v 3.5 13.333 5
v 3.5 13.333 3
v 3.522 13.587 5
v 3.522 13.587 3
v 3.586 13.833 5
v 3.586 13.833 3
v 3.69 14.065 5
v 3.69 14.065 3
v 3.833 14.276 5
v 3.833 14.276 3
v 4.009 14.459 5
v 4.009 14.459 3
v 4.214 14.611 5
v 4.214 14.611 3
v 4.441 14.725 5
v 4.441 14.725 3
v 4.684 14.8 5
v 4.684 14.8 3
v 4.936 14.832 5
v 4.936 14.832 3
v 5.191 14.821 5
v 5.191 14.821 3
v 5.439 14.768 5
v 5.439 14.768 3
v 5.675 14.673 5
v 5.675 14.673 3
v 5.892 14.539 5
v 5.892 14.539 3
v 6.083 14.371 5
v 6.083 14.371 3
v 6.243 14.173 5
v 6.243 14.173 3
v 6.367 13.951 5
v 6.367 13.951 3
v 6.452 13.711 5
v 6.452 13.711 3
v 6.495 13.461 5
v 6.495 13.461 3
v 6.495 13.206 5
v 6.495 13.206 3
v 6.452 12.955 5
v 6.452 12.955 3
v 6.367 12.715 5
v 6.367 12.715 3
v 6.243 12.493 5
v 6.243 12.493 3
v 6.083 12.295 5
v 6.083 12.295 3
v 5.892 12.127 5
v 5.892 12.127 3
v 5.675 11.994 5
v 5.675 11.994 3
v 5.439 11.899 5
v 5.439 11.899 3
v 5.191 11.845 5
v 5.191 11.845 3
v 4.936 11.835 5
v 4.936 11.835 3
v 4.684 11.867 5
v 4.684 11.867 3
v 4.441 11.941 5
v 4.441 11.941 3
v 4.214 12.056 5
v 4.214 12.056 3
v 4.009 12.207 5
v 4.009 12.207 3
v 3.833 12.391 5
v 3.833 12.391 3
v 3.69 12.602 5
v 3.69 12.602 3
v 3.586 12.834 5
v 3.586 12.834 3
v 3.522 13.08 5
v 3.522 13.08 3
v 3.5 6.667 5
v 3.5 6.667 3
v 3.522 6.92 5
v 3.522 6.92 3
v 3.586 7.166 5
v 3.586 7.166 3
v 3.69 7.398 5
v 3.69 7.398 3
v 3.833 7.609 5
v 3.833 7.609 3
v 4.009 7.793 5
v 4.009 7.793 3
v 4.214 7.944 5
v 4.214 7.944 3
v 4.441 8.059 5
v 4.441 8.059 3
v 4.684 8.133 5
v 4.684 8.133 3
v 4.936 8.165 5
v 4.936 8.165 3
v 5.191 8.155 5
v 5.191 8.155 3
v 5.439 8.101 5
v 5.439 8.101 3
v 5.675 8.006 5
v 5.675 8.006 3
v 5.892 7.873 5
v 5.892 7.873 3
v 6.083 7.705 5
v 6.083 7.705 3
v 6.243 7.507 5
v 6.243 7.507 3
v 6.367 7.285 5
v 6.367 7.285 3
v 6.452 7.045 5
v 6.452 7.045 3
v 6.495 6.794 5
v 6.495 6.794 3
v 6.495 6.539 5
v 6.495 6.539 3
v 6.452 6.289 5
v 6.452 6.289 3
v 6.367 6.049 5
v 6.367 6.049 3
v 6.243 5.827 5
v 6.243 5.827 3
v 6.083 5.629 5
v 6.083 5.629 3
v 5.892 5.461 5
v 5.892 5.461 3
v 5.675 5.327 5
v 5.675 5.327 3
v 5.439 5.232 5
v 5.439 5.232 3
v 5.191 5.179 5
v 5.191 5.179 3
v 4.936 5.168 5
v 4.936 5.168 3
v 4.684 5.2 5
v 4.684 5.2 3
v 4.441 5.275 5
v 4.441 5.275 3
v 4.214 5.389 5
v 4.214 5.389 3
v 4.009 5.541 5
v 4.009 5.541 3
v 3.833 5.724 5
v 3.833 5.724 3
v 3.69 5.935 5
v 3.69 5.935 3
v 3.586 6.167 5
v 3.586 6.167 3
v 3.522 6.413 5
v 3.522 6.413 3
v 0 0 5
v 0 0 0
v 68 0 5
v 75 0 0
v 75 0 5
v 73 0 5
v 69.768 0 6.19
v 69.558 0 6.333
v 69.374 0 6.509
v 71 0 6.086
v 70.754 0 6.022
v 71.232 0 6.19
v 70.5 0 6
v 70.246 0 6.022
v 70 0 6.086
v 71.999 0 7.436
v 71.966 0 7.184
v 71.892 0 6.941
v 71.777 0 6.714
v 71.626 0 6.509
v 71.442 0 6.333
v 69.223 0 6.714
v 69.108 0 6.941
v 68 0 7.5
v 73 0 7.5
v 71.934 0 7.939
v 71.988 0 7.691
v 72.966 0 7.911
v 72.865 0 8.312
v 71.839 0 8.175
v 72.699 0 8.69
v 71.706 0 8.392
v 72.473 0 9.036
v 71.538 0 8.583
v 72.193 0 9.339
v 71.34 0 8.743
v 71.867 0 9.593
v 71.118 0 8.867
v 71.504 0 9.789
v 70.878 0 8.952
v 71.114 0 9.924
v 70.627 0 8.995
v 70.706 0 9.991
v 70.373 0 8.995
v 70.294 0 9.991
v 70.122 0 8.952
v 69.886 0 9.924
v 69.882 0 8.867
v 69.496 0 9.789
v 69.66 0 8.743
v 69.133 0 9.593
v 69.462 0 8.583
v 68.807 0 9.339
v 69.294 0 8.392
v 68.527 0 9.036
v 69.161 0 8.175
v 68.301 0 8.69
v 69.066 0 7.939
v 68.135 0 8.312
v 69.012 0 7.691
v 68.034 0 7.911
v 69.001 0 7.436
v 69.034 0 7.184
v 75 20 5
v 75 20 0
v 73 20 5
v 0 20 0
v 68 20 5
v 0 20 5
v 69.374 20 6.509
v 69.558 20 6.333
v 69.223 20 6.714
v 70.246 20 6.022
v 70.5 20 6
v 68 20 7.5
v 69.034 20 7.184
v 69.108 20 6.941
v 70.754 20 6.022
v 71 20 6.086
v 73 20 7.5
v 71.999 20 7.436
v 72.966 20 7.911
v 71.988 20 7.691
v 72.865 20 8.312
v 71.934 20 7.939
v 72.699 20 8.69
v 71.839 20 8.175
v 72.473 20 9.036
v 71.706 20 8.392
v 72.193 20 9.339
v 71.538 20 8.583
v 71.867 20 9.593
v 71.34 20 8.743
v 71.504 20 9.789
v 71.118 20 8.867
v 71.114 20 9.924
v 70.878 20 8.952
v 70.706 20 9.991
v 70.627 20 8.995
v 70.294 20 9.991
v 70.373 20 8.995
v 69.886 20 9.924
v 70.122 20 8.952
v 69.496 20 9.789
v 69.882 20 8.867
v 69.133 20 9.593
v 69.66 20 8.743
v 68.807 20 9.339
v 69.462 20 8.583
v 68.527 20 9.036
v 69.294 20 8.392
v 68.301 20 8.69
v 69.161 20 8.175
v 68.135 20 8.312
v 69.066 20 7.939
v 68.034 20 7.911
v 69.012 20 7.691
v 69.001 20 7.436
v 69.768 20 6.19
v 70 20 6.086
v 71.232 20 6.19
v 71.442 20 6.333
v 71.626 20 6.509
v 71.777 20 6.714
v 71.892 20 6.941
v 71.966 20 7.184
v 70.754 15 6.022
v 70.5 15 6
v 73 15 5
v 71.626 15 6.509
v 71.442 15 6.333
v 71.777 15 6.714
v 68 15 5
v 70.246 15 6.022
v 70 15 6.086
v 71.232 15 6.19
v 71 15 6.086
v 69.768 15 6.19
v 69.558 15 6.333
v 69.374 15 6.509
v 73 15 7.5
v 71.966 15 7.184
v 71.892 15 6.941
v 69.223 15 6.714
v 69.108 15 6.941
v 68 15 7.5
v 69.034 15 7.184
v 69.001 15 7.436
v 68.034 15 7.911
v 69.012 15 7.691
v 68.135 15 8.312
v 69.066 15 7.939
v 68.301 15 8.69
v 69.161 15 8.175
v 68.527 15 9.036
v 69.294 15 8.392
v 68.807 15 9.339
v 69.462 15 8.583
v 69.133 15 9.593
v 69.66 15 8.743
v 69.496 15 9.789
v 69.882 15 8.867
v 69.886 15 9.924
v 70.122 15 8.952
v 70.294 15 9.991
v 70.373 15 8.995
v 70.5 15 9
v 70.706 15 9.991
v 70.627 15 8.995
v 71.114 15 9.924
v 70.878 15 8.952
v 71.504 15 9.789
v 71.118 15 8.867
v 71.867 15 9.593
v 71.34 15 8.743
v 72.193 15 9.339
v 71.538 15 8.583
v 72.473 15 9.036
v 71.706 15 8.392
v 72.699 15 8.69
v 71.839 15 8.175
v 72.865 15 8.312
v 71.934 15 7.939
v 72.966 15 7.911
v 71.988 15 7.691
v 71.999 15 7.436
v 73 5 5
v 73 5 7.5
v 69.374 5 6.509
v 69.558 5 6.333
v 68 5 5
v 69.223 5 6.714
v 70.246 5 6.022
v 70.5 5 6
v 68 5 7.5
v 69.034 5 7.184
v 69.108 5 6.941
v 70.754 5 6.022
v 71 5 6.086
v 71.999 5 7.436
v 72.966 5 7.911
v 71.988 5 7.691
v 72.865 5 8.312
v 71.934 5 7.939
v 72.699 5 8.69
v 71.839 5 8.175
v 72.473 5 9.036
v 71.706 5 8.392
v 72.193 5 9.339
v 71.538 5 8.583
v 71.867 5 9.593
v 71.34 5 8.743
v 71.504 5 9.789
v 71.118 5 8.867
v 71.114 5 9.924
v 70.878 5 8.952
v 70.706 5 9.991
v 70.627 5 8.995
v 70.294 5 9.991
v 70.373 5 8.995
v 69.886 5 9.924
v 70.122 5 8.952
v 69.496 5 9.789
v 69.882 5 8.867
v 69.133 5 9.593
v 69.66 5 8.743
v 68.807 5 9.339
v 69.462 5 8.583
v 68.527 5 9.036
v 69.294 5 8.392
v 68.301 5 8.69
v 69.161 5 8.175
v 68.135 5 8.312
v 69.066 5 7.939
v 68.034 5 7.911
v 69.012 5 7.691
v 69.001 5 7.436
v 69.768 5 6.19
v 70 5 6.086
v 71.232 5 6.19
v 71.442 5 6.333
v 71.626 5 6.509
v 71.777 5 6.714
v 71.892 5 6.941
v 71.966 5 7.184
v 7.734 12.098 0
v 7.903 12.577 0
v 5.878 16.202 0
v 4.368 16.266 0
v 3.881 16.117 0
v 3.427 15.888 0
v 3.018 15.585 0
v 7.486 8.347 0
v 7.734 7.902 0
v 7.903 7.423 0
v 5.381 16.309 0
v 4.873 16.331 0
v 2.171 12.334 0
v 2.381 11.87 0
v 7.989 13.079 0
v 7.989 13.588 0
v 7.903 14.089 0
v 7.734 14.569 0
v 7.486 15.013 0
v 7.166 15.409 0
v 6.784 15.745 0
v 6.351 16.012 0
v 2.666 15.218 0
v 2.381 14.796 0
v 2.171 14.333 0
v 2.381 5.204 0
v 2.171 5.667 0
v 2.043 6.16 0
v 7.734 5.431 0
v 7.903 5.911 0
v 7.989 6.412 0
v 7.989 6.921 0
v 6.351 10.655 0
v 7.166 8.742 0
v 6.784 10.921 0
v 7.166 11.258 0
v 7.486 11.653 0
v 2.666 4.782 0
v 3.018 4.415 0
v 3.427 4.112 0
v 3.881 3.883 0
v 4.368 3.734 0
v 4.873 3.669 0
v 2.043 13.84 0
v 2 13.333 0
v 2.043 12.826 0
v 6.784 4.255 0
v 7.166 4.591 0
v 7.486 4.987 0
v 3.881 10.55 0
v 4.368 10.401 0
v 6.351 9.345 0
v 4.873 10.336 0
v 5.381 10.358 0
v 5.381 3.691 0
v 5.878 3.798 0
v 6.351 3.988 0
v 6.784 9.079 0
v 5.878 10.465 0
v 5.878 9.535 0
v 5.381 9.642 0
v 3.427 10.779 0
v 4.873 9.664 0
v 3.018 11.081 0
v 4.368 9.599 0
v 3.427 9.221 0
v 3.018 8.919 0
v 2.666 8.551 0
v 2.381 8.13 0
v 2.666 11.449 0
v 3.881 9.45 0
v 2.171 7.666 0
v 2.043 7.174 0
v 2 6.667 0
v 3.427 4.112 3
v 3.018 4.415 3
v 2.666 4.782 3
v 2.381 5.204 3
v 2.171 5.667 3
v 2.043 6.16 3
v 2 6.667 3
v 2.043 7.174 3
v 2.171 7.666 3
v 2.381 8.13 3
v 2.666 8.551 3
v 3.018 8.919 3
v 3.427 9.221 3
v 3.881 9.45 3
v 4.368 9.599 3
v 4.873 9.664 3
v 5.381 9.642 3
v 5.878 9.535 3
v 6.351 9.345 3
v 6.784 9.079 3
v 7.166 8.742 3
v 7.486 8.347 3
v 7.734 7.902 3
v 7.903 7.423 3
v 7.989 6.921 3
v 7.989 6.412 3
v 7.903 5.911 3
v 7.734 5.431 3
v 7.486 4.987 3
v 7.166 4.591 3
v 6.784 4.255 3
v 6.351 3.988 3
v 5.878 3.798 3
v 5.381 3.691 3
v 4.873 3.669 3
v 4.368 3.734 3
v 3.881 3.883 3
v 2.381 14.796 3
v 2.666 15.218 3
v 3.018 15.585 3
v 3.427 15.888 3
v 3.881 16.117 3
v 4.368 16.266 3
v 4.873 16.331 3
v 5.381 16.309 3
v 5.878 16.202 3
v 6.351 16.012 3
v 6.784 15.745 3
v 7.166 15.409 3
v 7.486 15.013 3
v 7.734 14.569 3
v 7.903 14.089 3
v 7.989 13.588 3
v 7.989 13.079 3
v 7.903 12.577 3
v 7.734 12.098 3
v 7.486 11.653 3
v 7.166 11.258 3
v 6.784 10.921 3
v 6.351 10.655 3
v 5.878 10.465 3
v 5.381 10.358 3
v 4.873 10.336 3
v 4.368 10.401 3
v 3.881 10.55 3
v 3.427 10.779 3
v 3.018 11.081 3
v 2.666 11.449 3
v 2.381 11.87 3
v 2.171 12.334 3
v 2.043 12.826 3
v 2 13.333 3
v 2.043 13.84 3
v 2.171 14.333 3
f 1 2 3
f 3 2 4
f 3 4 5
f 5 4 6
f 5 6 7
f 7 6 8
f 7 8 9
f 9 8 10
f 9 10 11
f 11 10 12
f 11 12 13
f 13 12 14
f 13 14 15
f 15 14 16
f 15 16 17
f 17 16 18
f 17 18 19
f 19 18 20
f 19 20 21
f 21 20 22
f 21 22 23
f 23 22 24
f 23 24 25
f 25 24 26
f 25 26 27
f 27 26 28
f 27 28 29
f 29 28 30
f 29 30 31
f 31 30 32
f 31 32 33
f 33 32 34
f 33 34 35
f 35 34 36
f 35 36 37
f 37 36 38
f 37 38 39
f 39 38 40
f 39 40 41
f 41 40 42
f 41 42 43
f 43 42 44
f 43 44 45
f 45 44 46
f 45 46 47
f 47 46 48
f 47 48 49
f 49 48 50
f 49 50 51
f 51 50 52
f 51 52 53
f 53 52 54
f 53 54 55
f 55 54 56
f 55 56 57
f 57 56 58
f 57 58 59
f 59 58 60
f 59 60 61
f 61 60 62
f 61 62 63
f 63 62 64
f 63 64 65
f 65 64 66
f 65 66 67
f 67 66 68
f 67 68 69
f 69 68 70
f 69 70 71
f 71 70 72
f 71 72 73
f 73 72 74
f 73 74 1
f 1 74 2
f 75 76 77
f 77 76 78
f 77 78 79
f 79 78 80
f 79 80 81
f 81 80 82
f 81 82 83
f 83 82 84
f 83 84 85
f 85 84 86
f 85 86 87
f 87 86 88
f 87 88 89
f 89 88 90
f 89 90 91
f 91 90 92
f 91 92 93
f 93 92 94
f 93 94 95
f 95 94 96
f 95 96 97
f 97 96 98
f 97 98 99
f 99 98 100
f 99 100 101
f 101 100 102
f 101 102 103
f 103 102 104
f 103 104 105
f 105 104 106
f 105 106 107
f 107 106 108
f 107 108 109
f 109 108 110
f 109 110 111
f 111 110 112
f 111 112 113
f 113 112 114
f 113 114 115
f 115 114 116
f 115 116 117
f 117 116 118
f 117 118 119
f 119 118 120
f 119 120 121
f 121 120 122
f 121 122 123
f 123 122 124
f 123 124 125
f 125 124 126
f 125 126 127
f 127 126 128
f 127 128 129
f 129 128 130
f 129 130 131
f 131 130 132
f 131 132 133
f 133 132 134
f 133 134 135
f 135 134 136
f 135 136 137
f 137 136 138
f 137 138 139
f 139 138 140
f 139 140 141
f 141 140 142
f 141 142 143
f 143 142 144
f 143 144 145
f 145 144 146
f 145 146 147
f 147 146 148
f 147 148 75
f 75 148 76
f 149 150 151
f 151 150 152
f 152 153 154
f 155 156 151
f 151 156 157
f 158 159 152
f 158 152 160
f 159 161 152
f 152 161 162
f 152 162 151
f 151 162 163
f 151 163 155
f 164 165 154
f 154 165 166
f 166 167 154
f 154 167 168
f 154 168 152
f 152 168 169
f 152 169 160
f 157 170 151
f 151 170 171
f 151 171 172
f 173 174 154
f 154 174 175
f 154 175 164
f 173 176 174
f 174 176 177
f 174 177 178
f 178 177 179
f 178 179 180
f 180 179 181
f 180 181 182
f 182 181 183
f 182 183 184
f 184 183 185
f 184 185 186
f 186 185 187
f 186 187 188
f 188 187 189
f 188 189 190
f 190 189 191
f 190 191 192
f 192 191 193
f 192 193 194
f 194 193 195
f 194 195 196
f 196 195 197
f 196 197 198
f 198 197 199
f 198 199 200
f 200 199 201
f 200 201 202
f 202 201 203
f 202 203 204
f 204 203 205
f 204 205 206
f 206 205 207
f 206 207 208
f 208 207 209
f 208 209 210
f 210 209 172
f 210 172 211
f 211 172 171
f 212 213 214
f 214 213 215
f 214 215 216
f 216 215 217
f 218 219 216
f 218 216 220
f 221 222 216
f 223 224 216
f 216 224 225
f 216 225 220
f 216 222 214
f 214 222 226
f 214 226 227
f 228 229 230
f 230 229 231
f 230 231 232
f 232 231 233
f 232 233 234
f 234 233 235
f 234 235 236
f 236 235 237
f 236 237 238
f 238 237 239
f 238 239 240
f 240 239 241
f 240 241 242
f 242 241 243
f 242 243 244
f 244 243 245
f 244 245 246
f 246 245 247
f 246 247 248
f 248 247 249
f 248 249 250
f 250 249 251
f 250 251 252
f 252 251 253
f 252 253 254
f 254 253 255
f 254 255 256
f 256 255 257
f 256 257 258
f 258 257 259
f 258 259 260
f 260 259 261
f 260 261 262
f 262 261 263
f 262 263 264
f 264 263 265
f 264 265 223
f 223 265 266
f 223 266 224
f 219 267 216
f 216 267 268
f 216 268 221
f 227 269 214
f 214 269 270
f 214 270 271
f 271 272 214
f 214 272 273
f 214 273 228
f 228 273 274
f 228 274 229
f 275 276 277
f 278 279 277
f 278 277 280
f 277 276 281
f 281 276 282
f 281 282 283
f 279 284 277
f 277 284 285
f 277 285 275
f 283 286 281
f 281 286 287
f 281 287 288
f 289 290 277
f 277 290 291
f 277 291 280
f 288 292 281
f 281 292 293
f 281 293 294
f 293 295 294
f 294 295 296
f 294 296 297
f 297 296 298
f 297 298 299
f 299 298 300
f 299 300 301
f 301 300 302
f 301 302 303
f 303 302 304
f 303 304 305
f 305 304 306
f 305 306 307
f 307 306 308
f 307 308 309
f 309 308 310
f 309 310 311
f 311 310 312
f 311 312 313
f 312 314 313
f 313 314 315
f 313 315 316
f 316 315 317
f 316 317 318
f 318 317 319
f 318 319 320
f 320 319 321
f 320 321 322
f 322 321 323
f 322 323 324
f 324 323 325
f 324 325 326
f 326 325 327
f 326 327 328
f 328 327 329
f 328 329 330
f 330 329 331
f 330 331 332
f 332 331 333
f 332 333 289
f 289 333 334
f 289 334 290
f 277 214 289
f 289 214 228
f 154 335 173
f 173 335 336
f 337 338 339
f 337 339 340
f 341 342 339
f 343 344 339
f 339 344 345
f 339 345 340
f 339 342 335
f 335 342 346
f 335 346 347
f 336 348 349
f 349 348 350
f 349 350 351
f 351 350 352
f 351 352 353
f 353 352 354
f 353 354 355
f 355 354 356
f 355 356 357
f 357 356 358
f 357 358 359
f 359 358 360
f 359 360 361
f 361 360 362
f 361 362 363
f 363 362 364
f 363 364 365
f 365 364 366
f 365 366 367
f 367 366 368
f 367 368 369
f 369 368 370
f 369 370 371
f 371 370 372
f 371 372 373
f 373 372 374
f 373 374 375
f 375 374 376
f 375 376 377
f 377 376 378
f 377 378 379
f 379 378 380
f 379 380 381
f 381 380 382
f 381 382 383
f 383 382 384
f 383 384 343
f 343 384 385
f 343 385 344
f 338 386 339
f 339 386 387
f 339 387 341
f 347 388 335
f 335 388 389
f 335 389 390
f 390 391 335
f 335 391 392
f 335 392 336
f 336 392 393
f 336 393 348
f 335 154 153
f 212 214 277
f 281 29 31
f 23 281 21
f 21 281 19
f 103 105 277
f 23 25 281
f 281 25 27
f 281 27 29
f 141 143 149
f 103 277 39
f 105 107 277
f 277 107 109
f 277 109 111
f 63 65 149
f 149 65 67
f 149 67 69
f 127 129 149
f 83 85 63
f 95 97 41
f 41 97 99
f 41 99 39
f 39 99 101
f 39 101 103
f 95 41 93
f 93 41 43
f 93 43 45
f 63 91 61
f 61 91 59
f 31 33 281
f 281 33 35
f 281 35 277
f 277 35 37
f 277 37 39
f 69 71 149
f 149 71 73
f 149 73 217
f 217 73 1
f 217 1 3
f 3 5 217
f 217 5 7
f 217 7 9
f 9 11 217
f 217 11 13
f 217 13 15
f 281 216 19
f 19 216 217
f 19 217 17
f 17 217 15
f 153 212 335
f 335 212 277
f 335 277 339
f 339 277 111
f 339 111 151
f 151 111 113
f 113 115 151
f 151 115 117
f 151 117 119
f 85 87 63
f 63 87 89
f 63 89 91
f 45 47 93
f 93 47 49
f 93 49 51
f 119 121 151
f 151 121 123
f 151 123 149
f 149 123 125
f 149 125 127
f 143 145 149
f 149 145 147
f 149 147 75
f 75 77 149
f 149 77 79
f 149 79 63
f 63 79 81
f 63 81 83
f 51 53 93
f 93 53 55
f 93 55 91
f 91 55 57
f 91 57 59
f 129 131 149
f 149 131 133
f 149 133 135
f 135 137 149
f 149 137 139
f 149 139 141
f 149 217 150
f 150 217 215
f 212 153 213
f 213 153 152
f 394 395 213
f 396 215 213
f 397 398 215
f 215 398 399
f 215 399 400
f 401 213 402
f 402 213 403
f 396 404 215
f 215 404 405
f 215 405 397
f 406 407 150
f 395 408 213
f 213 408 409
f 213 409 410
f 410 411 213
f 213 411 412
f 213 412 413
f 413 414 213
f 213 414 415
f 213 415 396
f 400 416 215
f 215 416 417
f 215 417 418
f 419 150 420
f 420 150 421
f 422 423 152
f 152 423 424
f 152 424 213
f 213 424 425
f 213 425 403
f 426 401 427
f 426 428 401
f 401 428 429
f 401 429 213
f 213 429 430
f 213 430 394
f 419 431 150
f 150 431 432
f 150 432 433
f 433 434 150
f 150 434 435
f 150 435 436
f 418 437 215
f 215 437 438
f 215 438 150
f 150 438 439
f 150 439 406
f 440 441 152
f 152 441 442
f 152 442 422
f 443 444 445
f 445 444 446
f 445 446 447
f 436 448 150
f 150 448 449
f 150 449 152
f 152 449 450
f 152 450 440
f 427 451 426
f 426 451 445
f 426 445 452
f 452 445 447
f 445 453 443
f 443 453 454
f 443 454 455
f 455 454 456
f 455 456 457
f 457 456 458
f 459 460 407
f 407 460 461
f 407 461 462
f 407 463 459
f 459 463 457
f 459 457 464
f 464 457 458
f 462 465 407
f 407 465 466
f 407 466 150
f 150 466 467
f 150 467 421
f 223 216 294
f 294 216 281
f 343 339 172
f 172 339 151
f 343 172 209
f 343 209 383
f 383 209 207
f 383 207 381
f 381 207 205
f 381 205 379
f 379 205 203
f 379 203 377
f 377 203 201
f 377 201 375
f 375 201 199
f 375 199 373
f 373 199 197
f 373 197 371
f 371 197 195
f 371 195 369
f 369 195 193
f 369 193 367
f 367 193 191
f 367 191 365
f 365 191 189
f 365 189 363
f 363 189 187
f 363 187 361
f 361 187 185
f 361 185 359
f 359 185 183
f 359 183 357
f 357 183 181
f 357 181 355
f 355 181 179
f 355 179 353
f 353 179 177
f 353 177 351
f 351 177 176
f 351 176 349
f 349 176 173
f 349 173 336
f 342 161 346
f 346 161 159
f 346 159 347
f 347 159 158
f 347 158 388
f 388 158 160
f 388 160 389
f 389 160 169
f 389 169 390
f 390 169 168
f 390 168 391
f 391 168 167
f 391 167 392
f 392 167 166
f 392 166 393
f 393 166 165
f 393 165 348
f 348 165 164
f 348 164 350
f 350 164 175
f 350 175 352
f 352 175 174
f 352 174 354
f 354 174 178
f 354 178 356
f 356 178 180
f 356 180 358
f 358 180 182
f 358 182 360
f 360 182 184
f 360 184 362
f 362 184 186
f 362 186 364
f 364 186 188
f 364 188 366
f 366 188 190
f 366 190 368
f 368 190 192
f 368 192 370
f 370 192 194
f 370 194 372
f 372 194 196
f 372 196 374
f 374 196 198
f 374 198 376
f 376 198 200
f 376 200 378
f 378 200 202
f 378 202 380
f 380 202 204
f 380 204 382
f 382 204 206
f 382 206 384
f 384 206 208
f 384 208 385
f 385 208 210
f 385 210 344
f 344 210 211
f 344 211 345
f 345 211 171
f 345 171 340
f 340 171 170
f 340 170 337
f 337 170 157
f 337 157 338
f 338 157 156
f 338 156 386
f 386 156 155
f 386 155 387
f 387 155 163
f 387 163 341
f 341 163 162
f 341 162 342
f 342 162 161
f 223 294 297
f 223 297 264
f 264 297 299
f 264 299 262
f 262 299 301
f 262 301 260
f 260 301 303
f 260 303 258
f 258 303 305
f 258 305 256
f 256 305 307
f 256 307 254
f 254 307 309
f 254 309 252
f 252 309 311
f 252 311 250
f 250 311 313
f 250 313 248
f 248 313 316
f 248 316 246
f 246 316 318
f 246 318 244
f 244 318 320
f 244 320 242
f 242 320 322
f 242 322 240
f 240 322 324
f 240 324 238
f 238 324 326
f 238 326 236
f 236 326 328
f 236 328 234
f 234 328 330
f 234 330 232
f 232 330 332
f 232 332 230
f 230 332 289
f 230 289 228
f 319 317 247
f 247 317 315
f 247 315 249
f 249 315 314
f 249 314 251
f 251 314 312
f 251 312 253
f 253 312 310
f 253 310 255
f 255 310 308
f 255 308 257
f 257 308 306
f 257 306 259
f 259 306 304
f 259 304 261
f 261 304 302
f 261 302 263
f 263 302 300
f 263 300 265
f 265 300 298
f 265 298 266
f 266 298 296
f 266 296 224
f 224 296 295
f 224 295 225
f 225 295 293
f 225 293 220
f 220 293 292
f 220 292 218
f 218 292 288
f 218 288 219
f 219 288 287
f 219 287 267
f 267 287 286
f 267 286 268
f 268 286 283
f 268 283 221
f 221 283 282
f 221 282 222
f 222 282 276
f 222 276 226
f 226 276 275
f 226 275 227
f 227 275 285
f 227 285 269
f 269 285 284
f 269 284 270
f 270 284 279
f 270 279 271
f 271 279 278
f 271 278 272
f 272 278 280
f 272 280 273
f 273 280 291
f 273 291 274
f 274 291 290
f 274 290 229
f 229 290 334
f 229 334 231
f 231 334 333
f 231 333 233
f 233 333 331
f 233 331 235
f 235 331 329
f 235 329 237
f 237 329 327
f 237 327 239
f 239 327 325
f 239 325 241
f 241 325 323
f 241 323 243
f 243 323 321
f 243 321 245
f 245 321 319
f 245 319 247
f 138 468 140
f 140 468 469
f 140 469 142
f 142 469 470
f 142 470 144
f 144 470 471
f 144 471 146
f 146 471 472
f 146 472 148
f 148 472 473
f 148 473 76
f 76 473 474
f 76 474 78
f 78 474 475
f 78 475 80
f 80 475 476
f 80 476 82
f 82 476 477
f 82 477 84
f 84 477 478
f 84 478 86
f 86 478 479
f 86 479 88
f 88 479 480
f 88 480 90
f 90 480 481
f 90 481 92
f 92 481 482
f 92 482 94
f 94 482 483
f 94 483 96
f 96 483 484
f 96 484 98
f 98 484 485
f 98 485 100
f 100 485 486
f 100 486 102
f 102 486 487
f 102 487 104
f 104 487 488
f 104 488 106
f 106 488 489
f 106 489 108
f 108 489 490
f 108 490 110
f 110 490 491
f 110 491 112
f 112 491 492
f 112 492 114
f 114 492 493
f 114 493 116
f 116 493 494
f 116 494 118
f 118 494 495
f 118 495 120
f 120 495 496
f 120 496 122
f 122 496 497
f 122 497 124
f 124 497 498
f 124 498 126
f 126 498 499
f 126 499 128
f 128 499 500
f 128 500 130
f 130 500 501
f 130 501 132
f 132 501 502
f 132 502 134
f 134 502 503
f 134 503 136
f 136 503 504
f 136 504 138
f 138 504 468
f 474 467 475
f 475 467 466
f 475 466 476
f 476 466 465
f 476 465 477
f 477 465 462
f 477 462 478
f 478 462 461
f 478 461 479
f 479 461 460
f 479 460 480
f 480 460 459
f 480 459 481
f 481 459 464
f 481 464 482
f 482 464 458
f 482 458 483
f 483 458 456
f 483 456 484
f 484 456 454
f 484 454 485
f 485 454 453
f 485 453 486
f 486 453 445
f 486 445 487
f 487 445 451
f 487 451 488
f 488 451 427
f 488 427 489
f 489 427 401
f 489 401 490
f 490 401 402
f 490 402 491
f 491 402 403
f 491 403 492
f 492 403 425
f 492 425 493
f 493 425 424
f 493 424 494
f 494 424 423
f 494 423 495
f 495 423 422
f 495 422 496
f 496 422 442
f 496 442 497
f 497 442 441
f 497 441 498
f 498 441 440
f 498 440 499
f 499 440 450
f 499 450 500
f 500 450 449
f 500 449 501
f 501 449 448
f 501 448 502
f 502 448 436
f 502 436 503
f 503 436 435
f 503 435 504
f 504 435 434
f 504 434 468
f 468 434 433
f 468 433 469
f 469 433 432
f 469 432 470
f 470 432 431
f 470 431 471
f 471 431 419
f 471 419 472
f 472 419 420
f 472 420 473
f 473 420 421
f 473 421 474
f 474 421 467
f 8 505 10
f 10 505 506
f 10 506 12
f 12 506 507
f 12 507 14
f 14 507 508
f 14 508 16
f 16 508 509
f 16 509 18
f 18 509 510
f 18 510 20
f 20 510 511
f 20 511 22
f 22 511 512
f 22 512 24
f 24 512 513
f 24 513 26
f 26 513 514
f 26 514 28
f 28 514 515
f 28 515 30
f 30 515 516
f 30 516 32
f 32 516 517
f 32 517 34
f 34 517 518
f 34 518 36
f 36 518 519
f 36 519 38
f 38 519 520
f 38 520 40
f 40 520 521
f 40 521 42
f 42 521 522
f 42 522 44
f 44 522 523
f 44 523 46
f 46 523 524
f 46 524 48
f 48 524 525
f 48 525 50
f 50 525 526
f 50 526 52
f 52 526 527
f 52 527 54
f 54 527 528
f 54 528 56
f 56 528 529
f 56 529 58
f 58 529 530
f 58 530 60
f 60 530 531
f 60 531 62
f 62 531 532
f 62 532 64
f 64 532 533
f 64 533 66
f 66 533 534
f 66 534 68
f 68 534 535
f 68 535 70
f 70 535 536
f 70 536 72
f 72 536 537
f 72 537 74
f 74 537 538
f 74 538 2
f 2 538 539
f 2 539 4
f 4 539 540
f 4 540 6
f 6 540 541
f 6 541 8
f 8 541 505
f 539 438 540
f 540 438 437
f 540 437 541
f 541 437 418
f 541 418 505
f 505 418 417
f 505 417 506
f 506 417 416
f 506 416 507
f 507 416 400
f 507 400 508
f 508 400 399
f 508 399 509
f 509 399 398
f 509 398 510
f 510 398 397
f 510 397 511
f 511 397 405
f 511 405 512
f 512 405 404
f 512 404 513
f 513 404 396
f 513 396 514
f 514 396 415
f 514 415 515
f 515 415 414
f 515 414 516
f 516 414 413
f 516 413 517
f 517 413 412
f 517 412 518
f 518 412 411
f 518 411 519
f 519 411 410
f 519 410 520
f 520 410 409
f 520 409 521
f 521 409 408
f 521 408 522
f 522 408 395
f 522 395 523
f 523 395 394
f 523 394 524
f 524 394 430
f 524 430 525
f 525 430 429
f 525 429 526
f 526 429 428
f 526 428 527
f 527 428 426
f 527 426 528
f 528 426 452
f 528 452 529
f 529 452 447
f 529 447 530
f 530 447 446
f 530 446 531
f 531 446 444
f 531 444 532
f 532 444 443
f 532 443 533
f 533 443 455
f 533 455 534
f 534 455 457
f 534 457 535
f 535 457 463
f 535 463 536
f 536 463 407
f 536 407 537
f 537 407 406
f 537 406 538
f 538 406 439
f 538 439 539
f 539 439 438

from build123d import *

# Parameters (mm, degrees)
ESQUISSE1_W             = 75
ESQUISSE1_H             = 20
BOSS_EXTRU_1_DEPTH      = 5
ESQUISSE2_W             = 5
ESQUISSE2_H             = 5
BOSS_EXTRU_2_DEPTH      = 5
ESQUISSE3_R             = 1.5
ENL_V_MAT_EXTRU_1_DEPTH = 79.262379212
ESQUISSE4_R             = 1.5
ENL_V_MAT_EXTRU_2_DEPTH = 79.262379212
ESQUISSE5_R             = 3
ENL_V_MAT_EXTRU_3_DEPTH = 3


with BuildPart() as part:
    # Esquisse1 → Boss.-Extru.1 (new body)
    with BuildSketch(Plane.XY):
        with Locations((37.5, 10)):
            Rectangle(ESQUISSE1_W, ESQUISSE1_H)
    extrude(amount=BOSS_EXTRU_1_DEPTH)

    # Esquisse2 → Boss.-Extru.2 (add)
    with BuildSketch(Plane.XY.offset(5)):
        with Locations((70.5, 17.5)):
            Rectangle(ESQUISSE2_W, ESQUISSE2_H)
        with Locations((70.5, 2.5)):
            Rectangle(ESQUISSE2_W, ESQUISSE2_H)
    extrude(amount=BOSS_EXTRU_2_DEPTH)

    # Esquisse3 → Enlèv. mat.-Extru.1 (cut, through all)
    with BuildSketch(Plane.XZ):
        with Locations(Location((70.5, 7.5, 0), (0, 0, 270))):
            Circle(ESQUISSE3_R)
        with BuildLine():
            Line((68, 10), (68, 7.5))
            ThreePointArc((68, 7.5), (68.732233047, 9.267766953), (70.5, 10))
            Line((70.5, 10), (68, 10))
        make_face()
        with BuildLine():
            Line((73, 10), (70.5, 10))
            ThreePointArc((70.5, 10), (72.267766953, 9.267766953), (73, 7.5))
            Line((73, 7.5), (73, 10))
        make_face()
    extrude(amount=-ENL_V_MAT_EXTRU_1_DEPTH, mode=Mode.SUBTRACT)

    # Esquisse4 → Enlèv. mat.-Extru.2 (cut, through all)
    with BuildSketch(Plane(origin=(0, 0, 0), x_dir=(-1, 0, 0), z_dir=(0, 0, -1))):
        with Locations((-5, 6.666666667)):
            Circle(ESQUISSE4_R)
        with Locations((-5, 13.333333333)):
            Circle(ESQUISSE4_R)
    extrude(amount=-ENL_V_MAT_EXTRU_2_DEPTH, mode=Mode.SUBTRACT)

    # Esquisse5 → Enlèv. mat.-Extru.3 (cut)
    with BuildSketch(Plane(origin=(0, 0, 0), x_dir=(-1, 0, 0), z_dir=(0, 0, -1))):
        with Locations((-5, 6.666666667)):
            Circle(ESQUISSE5_R)
        with Locations((-5, 13.333333333)):
            Circle(ESQUISSE5_R)
    extrude(amount=-ENL_V_MAT_EXTRU_3_DEPTH, mode=Mode.SUBTRACT)


solid = part.part
